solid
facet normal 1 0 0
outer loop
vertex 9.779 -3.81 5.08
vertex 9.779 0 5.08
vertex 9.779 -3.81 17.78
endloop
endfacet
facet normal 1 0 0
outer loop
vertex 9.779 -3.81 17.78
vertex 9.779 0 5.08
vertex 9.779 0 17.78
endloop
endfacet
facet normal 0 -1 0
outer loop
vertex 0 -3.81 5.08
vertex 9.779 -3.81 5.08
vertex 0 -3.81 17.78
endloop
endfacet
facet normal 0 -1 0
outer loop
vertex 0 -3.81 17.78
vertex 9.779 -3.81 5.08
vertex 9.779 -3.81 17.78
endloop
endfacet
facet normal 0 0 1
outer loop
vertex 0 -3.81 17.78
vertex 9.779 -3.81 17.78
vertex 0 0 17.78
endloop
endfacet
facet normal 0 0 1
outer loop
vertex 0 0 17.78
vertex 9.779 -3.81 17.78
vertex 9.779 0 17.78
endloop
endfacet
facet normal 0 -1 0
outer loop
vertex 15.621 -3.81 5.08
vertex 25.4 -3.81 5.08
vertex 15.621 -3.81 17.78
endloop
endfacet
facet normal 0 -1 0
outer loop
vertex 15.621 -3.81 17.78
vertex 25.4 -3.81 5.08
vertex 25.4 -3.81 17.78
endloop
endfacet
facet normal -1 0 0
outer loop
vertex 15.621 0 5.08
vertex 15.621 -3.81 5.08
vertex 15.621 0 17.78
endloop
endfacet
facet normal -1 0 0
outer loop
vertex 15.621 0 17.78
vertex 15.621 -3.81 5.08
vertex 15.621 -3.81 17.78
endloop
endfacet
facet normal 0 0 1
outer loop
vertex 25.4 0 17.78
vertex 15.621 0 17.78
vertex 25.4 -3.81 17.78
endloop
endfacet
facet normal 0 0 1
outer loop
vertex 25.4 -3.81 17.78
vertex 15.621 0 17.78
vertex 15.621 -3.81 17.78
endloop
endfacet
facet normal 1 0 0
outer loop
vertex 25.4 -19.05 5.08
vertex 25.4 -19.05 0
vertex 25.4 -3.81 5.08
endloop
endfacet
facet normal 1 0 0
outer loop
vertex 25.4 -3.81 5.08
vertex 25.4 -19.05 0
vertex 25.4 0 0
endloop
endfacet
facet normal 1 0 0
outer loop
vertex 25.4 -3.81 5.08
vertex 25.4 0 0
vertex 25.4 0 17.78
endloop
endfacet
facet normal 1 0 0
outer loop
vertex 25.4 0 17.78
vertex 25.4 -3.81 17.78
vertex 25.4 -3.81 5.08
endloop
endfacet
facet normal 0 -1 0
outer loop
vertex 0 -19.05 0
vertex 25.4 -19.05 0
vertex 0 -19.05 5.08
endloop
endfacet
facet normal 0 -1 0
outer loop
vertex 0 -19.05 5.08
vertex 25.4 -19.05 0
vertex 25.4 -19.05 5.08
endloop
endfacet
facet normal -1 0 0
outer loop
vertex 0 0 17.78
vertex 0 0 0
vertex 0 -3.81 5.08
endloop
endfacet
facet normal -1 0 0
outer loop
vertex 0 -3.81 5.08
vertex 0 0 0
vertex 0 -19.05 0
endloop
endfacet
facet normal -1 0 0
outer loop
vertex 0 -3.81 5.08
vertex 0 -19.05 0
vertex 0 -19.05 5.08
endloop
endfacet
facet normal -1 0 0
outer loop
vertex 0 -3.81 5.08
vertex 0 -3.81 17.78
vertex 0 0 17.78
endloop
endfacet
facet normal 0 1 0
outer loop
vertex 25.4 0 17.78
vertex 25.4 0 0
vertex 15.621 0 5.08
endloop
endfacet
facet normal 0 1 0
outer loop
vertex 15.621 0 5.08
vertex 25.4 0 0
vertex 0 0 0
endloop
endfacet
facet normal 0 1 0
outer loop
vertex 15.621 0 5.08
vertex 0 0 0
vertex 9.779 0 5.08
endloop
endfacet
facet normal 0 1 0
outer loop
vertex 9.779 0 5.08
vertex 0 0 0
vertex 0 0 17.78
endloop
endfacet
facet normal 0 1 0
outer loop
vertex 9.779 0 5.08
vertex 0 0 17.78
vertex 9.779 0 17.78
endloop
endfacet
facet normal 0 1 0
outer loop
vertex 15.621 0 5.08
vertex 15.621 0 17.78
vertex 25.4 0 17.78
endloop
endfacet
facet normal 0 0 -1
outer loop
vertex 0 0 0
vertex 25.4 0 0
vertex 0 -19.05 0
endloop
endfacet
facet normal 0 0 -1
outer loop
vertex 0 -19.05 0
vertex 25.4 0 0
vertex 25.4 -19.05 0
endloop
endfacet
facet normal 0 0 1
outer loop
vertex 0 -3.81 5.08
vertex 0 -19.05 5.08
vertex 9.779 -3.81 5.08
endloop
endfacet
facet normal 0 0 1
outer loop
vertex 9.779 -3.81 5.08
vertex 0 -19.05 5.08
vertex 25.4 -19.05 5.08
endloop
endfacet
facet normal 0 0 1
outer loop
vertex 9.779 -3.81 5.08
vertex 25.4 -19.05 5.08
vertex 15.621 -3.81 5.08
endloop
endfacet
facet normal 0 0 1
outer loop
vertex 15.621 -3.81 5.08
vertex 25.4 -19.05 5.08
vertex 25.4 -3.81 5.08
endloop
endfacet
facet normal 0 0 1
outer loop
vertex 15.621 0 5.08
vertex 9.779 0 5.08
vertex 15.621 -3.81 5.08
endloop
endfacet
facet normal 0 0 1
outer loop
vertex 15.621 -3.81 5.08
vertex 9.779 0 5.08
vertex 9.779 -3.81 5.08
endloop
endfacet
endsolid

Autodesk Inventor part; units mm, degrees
ref_plane "YZ Plane" through (0, 0, 0) normal (1, 0, 0) x (0, 1, 0)
ref_plane "XZ Plane" through (0, 0, 0) normal (0, 1, 0) x (-1, 0, 0)
ref_plane "XY Plane" through (0, 0, 0) normal (0, 0, 1) x (1, 0, 0)
sketch "Sketch1" plane through (0, 0, 0) normal (0, 0, 1) x (1, 0, 0)
  line L0 (0, 0) -> (25.4, 0)
  line L1 (25.4, 0) -> (25.4, -19.05)
  line L2 (25.4, -19.05) -> (0, -19.05)
  line L3 (0, -19.05) -> (0, 0)
  dimension "d0" = 25.4
  dimension "d1" = 19.05
extrude "Extrusion1" add sketch "Sketch1" along normal blind 5.08
sketch "Sketch2" plane through (0, 0, 5.08) normal (0, 0, 1) x (1, 0, 0)
  line L0 (25.4, 0) -> (0, 0) projected
  line L1 (0, 0) -> (9.779, 0)
  line L2 (9.779, 0) -> (9.779, -3.81)
  line L3 (9.779, -3.81) -> (0, -3.81)
  line L4 (0, -3.81) -> (0, 0)
  line L5 (25.4, 0) -> (15.621, 0)
  line L6 (15.621, 0) -> (15.621, -3.81)
  line L7 (15.621, -3.81) -> (25.4, -3.81)
  line L8 (25.4, -3.81) -> (25.4, 0)
  dimension "d4" = 9.779
  dimension "d5" = 3.81
  dimension "d6" = 9.779
extrude "Extrusion2" add sketch "Sketch2" along normal blind 12.7
